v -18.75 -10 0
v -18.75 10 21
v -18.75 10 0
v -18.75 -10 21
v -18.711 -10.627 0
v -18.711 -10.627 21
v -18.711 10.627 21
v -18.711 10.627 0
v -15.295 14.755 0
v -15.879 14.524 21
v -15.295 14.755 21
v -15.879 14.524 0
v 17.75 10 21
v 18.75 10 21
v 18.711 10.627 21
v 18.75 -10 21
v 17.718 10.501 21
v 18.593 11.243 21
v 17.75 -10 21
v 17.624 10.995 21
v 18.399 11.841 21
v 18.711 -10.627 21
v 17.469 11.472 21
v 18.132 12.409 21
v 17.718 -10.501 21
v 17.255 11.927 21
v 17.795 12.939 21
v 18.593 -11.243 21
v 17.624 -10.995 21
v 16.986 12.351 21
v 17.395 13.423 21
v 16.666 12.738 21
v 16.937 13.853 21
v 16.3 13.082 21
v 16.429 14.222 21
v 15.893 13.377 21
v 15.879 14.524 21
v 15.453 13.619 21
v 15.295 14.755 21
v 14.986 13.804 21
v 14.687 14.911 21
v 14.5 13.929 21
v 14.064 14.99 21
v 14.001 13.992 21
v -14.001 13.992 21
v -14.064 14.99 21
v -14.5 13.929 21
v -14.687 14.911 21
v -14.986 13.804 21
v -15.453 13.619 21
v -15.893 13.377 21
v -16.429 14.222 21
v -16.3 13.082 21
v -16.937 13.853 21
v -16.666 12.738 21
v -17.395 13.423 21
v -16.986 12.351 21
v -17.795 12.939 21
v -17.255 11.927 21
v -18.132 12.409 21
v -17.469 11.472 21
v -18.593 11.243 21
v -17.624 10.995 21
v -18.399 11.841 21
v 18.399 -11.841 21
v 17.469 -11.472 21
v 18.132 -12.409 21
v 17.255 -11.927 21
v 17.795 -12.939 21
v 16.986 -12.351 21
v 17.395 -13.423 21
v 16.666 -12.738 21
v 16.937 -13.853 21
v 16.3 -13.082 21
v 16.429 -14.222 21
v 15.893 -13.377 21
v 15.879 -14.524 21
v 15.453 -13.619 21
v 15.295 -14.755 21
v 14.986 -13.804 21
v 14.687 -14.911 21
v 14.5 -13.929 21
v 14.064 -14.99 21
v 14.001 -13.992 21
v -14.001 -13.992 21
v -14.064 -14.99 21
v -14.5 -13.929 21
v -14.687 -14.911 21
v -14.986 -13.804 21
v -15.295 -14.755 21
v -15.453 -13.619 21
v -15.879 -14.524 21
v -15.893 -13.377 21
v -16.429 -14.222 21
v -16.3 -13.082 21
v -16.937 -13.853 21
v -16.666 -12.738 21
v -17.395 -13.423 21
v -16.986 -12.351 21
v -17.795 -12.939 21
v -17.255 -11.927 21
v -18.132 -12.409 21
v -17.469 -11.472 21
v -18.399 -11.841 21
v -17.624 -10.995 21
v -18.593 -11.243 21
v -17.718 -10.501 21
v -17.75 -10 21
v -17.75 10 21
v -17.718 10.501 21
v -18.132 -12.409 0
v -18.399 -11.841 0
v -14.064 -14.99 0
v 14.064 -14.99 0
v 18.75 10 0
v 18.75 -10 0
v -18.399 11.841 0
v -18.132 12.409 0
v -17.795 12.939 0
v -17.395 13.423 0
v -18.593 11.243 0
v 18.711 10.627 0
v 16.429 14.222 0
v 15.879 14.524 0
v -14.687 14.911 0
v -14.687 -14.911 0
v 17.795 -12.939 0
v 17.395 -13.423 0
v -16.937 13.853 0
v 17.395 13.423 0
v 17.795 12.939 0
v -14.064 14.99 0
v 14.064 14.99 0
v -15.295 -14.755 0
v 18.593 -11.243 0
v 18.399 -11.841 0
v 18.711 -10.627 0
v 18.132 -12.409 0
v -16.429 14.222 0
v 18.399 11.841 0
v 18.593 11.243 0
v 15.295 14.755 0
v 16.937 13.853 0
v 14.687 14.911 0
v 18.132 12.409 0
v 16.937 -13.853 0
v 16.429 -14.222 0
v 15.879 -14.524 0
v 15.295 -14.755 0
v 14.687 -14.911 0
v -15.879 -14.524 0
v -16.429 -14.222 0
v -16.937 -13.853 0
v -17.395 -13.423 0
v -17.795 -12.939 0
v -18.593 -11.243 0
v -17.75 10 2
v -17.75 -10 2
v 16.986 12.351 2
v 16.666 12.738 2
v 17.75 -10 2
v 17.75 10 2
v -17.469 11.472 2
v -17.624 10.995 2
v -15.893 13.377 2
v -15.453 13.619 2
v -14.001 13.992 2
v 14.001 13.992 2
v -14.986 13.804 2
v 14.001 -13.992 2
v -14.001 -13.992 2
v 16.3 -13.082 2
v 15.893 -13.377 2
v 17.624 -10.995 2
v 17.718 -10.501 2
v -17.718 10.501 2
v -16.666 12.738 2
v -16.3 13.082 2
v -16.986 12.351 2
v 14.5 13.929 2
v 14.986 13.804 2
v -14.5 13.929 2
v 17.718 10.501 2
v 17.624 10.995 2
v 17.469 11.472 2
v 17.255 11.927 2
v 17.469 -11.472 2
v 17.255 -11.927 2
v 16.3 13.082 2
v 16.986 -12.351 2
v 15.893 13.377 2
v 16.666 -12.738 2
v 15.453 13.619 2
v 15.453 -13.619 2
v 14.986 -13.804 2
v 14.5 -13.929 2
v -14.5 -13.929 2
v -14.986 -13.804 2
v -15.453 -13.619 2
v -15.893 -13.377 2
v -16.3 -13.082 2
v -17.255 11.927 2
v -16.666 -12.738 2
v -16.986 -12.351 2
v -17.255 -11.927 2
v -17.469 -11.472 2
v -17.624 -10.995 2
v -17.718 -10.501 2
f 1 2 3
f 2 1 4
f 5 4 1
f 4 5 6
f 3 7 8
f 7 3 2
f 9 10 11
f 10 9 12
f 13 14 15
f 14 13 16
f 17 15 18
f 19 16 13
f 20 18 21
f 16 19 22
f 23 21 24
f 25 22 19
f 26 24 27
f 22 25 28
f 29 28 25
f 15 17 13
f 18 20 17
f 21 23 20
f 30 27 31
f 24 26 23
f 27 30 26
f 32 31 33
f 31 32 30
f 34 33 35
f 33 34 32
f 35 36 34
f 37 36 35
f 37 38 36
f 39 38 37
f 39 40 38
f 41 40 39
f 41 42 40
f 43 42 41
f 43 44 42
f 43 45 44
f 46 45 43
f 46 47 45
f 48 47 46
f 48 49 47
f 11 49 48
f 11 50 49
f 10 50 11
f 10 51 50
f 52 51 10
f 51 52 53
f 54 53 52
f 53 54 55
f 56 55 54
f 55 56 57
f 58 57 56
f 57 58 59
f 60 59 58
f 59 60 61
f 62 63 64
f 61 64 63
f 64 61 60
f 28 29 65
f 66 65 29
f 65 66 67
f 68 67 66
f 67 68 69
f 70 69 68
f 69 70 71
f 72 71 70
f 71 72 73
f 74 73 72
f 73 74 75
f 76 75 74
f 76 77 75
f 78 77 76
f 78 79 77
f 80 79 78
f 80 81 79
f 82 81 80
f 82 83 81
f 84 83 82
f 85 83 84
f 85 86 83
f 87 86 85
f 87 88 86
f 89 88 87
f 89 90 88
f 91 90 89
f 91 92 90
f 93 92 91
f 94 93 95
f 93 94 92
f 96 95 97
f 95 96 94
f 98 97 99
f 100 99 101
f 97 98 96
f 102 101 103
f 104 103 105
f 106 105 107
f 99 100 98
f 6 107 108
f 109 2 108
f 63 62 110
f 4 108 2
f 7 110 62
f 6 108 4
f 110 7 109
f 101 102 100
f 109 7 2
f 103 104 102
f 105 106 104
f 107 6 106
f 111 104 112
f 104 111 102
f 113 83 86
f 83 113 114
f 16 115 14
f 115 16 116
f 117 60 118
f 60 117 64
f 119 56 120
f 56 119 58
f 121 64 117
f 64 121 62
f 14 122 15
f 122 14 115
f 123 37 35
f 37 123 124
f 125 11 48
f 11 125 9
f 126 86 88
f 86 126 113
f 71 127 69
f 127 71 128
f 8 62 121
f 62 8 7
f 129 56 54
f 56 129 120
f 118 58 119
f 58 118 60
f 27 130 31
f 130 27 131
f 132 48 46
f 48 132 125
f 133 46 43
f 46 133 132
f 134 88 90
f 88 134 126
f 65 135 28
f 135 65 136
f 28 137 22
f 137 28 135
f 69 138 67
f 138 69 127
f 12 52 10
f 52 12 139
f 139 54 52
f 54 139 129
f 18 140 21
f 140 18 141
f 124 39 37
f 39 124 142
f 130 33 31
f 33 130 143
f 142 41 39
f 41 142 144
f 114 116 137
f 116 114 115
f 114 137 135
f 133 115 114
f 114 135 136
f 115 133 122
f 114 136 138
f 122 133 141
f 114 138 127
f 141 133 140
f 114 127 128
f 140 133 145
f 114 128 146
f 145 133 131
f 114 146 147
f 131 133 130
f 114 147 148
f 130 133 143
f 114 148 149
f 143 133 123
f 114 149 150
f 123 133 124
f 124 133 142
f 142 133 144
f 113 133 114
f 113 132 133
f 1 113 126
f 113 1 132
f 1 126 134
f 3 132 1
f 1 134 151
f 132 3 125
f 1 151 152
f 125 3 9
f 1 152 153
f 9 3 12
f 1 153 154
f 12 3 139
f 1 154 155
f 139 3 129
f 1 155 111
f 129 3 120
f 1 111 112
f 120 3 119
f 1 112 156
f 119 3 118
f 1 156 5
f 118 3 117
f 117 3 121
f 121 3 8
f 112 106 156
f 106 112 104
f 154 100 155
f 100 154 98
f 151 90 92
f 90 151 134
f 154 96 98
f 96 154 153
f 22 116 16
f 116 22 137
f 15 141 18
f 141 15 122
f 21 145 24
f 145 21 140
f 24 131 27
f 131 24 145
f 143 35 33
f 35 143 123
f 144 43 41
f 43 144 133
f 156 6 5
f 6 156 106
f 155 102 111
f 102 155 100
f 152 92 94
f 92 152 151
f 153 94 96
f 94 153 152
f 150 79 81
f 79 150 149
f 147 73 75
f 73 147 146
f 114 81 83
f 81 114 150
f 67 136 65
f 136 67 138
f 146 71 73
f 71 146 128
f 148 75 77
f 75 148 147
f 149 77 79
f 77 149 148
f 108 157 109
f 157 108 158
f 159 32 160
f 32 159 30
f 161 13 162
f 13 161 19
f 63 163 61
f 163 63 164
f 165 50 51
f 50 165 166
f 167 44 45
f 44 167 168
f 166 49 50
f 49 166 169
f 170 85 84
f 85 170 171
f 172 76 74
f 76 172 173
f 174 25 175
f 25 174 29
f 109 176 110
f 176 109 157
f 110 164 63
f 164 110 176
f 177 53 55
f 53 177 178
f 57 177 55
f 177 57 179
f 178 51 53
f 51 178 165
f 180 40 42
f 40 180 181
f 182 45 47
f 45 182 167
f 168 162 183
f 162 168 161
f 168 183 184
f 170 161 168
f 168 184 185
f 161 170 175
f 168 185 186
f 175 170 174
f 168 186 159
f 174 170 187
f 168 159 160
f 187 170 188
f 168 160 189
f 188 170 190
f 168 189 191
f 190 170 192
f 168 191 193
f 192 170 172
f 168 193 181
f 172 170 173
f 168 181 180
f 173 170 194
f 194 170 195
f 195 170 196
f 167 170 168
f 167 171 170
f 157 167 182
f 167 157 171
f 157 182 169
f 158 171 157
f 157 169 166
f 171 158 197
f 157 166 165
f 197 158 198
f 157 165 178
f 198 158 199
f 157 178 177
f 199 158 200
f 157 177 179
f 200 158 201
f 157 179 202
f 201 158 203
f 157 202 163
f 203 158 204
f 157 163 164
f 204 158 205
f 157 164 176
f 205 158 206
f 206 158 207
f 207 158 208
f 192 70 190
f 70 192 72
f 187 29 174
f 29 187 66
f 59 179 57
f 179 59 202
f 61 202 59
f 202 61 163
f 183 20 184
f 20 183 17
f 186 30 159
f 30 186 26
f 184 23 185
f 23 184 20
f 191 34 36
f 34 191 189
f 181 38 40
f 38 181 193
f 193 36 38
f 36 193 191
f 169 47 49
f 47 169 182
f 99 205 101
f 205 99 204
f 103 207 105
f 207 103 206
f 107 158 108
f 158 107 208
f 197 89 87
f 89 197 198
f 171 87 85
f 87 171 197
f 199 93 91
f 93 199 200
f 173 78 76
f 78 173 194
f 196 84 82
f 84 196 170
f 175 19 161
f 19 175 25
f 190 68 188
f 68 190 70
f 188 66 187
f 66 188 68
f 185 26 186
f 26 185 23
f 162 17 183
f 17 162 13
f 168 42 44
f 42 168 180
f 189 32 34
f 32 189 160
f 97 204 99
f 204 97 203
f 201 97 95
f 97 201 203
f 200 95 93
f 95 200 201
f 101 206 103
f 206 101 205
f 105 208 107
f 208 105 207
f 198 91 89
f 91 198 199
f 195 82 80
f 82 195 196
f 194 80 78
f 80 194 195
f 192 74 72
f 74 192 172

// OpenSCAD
$fn = 50;


difference() {
	union() {
		hull() {
			translate(v = [-13.7500000000, 10.0000000000, 0]) {
				cylinder(h = 21, r = 5);
			}
			translate(v = [13.7500000000, 10.0000000000, 0]) {
				cylinder(h = 21, r = 5);
			}
			translate(v = [-13.7500000000, -10.0000000000, 0]) {
				cylinder(h = 21, r = 5);
			}
			translate(v = [13.7500000000, -10.0000000000, 0]) {
				cylinder(h = 21, r = 5);
			}
		}
	}
	union() {
		translate(v = [0, 0, 2]) {
			#hull() {
				translate(v = [-13.7500000000, 10.0000000000, 0]) {
					cylinder(h = 19, r = 4);
				}
				translate(v = [13.7500000000, 10.0000000000, 0]) {
					cylinder(h = 19, r = 4);
				}
				translate(v = [-13.7500000000, -10.0000000000, 0]) {
					cylinder(h = 19, r = 4);
				}
				translate(v = [13.7500000000, -10.0000000000, 0]) {
					cylinder(h = 19, r = 4);
				}
			}
		}
	}
}
